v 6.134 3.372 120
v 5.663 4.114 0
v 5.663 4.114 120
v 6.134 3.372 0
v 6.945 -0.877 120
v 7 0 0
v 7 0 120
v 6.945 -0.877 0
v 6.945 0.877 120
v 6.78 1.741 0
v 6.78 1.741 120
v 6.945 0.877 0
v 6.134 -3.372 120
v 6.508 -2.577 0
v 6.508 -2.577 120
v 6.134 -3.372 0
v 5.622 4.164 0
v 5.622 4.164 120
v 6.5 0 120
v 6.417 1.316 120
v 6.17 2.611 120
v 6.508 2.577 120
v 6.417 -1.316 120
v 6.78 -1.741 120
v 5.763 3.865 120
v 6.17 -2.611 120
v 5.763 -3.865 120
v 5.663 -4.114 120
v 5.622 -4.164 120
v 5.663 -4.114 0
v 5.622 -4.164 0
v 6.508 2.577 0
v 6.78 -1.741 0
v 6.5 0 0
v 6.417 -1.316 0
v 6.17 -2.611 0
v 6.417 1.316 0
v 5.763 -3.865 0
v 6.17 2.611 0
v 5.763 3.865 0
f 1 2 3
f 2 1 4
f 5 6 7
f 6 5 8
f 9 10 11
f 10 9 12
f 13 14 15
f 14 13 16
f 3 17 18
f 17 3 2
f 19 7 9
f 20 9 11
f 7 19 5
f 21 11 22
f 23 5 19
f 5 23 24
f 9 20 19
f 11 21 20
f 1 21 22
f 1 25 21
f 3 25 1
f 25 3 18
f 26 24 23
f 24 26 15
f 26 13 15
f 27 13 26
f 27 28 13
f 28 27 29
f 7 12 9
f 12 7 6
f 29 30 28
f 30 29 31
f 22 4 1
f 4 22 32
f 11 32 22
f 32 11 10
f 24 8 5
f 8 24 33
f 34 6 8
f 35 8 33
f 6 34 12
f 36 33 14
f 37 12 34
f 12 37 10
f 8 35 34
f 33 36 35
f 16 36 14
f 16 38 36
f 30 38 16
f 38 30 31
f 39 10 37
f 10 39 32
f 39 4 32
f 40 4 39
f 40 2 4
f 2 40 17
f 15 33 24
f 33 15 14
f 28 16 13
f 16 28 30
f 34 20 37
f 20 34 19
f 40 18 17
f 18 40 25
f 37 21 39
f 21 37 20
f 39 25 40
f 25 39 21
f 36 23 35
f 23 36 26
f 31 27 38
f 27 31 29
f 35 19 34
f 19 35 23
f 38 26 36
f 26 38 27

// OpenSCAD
$fn = 50;


difference() {
	union() {
		cylinder(h = 120, r = 7.0000000000);
		translate(v = [-7.0000000000, 0, 0]) {
			cylinder(h = 120, r = 7.0000000000);
		}
	}
	union() {
		cylinder(h = 120, r = 3.2500000000);
		cylinder(h = 120, r = 1.8000000000);
		cylinder(h = 120, r = 1.8000000000);
		cylinder(h = 120, r = 1.8000000000);
		translate(v = [-11.5000000000, 0, 0]) {
			hull() {
				translate(v = [-3.7500000000, 0.0000000000, 0]) {
					cylinder(h = 120, r = 7.5000000000);
				}
				translate(v = [3.7500000000, 0.0000000000, 0]) {
					cylinder(h = 120, r = 7.5000000000);
				}
				translate(v = [-3.7500000000, -0.0000000000, 0]) {
					cylinder(h = 120, r = 7.5000000000);
				}
				translate(v = [3.7500000000, -0.0000000000, 0]) {
					cylinder(h = 120, r = 7.5000000000);
				}
			}
		}
		translate(v = [-4.0000000000, 0, 0.0000000000]) {
			cylinder(h = 120, r = 10.5000000000);
		}
	}
}
